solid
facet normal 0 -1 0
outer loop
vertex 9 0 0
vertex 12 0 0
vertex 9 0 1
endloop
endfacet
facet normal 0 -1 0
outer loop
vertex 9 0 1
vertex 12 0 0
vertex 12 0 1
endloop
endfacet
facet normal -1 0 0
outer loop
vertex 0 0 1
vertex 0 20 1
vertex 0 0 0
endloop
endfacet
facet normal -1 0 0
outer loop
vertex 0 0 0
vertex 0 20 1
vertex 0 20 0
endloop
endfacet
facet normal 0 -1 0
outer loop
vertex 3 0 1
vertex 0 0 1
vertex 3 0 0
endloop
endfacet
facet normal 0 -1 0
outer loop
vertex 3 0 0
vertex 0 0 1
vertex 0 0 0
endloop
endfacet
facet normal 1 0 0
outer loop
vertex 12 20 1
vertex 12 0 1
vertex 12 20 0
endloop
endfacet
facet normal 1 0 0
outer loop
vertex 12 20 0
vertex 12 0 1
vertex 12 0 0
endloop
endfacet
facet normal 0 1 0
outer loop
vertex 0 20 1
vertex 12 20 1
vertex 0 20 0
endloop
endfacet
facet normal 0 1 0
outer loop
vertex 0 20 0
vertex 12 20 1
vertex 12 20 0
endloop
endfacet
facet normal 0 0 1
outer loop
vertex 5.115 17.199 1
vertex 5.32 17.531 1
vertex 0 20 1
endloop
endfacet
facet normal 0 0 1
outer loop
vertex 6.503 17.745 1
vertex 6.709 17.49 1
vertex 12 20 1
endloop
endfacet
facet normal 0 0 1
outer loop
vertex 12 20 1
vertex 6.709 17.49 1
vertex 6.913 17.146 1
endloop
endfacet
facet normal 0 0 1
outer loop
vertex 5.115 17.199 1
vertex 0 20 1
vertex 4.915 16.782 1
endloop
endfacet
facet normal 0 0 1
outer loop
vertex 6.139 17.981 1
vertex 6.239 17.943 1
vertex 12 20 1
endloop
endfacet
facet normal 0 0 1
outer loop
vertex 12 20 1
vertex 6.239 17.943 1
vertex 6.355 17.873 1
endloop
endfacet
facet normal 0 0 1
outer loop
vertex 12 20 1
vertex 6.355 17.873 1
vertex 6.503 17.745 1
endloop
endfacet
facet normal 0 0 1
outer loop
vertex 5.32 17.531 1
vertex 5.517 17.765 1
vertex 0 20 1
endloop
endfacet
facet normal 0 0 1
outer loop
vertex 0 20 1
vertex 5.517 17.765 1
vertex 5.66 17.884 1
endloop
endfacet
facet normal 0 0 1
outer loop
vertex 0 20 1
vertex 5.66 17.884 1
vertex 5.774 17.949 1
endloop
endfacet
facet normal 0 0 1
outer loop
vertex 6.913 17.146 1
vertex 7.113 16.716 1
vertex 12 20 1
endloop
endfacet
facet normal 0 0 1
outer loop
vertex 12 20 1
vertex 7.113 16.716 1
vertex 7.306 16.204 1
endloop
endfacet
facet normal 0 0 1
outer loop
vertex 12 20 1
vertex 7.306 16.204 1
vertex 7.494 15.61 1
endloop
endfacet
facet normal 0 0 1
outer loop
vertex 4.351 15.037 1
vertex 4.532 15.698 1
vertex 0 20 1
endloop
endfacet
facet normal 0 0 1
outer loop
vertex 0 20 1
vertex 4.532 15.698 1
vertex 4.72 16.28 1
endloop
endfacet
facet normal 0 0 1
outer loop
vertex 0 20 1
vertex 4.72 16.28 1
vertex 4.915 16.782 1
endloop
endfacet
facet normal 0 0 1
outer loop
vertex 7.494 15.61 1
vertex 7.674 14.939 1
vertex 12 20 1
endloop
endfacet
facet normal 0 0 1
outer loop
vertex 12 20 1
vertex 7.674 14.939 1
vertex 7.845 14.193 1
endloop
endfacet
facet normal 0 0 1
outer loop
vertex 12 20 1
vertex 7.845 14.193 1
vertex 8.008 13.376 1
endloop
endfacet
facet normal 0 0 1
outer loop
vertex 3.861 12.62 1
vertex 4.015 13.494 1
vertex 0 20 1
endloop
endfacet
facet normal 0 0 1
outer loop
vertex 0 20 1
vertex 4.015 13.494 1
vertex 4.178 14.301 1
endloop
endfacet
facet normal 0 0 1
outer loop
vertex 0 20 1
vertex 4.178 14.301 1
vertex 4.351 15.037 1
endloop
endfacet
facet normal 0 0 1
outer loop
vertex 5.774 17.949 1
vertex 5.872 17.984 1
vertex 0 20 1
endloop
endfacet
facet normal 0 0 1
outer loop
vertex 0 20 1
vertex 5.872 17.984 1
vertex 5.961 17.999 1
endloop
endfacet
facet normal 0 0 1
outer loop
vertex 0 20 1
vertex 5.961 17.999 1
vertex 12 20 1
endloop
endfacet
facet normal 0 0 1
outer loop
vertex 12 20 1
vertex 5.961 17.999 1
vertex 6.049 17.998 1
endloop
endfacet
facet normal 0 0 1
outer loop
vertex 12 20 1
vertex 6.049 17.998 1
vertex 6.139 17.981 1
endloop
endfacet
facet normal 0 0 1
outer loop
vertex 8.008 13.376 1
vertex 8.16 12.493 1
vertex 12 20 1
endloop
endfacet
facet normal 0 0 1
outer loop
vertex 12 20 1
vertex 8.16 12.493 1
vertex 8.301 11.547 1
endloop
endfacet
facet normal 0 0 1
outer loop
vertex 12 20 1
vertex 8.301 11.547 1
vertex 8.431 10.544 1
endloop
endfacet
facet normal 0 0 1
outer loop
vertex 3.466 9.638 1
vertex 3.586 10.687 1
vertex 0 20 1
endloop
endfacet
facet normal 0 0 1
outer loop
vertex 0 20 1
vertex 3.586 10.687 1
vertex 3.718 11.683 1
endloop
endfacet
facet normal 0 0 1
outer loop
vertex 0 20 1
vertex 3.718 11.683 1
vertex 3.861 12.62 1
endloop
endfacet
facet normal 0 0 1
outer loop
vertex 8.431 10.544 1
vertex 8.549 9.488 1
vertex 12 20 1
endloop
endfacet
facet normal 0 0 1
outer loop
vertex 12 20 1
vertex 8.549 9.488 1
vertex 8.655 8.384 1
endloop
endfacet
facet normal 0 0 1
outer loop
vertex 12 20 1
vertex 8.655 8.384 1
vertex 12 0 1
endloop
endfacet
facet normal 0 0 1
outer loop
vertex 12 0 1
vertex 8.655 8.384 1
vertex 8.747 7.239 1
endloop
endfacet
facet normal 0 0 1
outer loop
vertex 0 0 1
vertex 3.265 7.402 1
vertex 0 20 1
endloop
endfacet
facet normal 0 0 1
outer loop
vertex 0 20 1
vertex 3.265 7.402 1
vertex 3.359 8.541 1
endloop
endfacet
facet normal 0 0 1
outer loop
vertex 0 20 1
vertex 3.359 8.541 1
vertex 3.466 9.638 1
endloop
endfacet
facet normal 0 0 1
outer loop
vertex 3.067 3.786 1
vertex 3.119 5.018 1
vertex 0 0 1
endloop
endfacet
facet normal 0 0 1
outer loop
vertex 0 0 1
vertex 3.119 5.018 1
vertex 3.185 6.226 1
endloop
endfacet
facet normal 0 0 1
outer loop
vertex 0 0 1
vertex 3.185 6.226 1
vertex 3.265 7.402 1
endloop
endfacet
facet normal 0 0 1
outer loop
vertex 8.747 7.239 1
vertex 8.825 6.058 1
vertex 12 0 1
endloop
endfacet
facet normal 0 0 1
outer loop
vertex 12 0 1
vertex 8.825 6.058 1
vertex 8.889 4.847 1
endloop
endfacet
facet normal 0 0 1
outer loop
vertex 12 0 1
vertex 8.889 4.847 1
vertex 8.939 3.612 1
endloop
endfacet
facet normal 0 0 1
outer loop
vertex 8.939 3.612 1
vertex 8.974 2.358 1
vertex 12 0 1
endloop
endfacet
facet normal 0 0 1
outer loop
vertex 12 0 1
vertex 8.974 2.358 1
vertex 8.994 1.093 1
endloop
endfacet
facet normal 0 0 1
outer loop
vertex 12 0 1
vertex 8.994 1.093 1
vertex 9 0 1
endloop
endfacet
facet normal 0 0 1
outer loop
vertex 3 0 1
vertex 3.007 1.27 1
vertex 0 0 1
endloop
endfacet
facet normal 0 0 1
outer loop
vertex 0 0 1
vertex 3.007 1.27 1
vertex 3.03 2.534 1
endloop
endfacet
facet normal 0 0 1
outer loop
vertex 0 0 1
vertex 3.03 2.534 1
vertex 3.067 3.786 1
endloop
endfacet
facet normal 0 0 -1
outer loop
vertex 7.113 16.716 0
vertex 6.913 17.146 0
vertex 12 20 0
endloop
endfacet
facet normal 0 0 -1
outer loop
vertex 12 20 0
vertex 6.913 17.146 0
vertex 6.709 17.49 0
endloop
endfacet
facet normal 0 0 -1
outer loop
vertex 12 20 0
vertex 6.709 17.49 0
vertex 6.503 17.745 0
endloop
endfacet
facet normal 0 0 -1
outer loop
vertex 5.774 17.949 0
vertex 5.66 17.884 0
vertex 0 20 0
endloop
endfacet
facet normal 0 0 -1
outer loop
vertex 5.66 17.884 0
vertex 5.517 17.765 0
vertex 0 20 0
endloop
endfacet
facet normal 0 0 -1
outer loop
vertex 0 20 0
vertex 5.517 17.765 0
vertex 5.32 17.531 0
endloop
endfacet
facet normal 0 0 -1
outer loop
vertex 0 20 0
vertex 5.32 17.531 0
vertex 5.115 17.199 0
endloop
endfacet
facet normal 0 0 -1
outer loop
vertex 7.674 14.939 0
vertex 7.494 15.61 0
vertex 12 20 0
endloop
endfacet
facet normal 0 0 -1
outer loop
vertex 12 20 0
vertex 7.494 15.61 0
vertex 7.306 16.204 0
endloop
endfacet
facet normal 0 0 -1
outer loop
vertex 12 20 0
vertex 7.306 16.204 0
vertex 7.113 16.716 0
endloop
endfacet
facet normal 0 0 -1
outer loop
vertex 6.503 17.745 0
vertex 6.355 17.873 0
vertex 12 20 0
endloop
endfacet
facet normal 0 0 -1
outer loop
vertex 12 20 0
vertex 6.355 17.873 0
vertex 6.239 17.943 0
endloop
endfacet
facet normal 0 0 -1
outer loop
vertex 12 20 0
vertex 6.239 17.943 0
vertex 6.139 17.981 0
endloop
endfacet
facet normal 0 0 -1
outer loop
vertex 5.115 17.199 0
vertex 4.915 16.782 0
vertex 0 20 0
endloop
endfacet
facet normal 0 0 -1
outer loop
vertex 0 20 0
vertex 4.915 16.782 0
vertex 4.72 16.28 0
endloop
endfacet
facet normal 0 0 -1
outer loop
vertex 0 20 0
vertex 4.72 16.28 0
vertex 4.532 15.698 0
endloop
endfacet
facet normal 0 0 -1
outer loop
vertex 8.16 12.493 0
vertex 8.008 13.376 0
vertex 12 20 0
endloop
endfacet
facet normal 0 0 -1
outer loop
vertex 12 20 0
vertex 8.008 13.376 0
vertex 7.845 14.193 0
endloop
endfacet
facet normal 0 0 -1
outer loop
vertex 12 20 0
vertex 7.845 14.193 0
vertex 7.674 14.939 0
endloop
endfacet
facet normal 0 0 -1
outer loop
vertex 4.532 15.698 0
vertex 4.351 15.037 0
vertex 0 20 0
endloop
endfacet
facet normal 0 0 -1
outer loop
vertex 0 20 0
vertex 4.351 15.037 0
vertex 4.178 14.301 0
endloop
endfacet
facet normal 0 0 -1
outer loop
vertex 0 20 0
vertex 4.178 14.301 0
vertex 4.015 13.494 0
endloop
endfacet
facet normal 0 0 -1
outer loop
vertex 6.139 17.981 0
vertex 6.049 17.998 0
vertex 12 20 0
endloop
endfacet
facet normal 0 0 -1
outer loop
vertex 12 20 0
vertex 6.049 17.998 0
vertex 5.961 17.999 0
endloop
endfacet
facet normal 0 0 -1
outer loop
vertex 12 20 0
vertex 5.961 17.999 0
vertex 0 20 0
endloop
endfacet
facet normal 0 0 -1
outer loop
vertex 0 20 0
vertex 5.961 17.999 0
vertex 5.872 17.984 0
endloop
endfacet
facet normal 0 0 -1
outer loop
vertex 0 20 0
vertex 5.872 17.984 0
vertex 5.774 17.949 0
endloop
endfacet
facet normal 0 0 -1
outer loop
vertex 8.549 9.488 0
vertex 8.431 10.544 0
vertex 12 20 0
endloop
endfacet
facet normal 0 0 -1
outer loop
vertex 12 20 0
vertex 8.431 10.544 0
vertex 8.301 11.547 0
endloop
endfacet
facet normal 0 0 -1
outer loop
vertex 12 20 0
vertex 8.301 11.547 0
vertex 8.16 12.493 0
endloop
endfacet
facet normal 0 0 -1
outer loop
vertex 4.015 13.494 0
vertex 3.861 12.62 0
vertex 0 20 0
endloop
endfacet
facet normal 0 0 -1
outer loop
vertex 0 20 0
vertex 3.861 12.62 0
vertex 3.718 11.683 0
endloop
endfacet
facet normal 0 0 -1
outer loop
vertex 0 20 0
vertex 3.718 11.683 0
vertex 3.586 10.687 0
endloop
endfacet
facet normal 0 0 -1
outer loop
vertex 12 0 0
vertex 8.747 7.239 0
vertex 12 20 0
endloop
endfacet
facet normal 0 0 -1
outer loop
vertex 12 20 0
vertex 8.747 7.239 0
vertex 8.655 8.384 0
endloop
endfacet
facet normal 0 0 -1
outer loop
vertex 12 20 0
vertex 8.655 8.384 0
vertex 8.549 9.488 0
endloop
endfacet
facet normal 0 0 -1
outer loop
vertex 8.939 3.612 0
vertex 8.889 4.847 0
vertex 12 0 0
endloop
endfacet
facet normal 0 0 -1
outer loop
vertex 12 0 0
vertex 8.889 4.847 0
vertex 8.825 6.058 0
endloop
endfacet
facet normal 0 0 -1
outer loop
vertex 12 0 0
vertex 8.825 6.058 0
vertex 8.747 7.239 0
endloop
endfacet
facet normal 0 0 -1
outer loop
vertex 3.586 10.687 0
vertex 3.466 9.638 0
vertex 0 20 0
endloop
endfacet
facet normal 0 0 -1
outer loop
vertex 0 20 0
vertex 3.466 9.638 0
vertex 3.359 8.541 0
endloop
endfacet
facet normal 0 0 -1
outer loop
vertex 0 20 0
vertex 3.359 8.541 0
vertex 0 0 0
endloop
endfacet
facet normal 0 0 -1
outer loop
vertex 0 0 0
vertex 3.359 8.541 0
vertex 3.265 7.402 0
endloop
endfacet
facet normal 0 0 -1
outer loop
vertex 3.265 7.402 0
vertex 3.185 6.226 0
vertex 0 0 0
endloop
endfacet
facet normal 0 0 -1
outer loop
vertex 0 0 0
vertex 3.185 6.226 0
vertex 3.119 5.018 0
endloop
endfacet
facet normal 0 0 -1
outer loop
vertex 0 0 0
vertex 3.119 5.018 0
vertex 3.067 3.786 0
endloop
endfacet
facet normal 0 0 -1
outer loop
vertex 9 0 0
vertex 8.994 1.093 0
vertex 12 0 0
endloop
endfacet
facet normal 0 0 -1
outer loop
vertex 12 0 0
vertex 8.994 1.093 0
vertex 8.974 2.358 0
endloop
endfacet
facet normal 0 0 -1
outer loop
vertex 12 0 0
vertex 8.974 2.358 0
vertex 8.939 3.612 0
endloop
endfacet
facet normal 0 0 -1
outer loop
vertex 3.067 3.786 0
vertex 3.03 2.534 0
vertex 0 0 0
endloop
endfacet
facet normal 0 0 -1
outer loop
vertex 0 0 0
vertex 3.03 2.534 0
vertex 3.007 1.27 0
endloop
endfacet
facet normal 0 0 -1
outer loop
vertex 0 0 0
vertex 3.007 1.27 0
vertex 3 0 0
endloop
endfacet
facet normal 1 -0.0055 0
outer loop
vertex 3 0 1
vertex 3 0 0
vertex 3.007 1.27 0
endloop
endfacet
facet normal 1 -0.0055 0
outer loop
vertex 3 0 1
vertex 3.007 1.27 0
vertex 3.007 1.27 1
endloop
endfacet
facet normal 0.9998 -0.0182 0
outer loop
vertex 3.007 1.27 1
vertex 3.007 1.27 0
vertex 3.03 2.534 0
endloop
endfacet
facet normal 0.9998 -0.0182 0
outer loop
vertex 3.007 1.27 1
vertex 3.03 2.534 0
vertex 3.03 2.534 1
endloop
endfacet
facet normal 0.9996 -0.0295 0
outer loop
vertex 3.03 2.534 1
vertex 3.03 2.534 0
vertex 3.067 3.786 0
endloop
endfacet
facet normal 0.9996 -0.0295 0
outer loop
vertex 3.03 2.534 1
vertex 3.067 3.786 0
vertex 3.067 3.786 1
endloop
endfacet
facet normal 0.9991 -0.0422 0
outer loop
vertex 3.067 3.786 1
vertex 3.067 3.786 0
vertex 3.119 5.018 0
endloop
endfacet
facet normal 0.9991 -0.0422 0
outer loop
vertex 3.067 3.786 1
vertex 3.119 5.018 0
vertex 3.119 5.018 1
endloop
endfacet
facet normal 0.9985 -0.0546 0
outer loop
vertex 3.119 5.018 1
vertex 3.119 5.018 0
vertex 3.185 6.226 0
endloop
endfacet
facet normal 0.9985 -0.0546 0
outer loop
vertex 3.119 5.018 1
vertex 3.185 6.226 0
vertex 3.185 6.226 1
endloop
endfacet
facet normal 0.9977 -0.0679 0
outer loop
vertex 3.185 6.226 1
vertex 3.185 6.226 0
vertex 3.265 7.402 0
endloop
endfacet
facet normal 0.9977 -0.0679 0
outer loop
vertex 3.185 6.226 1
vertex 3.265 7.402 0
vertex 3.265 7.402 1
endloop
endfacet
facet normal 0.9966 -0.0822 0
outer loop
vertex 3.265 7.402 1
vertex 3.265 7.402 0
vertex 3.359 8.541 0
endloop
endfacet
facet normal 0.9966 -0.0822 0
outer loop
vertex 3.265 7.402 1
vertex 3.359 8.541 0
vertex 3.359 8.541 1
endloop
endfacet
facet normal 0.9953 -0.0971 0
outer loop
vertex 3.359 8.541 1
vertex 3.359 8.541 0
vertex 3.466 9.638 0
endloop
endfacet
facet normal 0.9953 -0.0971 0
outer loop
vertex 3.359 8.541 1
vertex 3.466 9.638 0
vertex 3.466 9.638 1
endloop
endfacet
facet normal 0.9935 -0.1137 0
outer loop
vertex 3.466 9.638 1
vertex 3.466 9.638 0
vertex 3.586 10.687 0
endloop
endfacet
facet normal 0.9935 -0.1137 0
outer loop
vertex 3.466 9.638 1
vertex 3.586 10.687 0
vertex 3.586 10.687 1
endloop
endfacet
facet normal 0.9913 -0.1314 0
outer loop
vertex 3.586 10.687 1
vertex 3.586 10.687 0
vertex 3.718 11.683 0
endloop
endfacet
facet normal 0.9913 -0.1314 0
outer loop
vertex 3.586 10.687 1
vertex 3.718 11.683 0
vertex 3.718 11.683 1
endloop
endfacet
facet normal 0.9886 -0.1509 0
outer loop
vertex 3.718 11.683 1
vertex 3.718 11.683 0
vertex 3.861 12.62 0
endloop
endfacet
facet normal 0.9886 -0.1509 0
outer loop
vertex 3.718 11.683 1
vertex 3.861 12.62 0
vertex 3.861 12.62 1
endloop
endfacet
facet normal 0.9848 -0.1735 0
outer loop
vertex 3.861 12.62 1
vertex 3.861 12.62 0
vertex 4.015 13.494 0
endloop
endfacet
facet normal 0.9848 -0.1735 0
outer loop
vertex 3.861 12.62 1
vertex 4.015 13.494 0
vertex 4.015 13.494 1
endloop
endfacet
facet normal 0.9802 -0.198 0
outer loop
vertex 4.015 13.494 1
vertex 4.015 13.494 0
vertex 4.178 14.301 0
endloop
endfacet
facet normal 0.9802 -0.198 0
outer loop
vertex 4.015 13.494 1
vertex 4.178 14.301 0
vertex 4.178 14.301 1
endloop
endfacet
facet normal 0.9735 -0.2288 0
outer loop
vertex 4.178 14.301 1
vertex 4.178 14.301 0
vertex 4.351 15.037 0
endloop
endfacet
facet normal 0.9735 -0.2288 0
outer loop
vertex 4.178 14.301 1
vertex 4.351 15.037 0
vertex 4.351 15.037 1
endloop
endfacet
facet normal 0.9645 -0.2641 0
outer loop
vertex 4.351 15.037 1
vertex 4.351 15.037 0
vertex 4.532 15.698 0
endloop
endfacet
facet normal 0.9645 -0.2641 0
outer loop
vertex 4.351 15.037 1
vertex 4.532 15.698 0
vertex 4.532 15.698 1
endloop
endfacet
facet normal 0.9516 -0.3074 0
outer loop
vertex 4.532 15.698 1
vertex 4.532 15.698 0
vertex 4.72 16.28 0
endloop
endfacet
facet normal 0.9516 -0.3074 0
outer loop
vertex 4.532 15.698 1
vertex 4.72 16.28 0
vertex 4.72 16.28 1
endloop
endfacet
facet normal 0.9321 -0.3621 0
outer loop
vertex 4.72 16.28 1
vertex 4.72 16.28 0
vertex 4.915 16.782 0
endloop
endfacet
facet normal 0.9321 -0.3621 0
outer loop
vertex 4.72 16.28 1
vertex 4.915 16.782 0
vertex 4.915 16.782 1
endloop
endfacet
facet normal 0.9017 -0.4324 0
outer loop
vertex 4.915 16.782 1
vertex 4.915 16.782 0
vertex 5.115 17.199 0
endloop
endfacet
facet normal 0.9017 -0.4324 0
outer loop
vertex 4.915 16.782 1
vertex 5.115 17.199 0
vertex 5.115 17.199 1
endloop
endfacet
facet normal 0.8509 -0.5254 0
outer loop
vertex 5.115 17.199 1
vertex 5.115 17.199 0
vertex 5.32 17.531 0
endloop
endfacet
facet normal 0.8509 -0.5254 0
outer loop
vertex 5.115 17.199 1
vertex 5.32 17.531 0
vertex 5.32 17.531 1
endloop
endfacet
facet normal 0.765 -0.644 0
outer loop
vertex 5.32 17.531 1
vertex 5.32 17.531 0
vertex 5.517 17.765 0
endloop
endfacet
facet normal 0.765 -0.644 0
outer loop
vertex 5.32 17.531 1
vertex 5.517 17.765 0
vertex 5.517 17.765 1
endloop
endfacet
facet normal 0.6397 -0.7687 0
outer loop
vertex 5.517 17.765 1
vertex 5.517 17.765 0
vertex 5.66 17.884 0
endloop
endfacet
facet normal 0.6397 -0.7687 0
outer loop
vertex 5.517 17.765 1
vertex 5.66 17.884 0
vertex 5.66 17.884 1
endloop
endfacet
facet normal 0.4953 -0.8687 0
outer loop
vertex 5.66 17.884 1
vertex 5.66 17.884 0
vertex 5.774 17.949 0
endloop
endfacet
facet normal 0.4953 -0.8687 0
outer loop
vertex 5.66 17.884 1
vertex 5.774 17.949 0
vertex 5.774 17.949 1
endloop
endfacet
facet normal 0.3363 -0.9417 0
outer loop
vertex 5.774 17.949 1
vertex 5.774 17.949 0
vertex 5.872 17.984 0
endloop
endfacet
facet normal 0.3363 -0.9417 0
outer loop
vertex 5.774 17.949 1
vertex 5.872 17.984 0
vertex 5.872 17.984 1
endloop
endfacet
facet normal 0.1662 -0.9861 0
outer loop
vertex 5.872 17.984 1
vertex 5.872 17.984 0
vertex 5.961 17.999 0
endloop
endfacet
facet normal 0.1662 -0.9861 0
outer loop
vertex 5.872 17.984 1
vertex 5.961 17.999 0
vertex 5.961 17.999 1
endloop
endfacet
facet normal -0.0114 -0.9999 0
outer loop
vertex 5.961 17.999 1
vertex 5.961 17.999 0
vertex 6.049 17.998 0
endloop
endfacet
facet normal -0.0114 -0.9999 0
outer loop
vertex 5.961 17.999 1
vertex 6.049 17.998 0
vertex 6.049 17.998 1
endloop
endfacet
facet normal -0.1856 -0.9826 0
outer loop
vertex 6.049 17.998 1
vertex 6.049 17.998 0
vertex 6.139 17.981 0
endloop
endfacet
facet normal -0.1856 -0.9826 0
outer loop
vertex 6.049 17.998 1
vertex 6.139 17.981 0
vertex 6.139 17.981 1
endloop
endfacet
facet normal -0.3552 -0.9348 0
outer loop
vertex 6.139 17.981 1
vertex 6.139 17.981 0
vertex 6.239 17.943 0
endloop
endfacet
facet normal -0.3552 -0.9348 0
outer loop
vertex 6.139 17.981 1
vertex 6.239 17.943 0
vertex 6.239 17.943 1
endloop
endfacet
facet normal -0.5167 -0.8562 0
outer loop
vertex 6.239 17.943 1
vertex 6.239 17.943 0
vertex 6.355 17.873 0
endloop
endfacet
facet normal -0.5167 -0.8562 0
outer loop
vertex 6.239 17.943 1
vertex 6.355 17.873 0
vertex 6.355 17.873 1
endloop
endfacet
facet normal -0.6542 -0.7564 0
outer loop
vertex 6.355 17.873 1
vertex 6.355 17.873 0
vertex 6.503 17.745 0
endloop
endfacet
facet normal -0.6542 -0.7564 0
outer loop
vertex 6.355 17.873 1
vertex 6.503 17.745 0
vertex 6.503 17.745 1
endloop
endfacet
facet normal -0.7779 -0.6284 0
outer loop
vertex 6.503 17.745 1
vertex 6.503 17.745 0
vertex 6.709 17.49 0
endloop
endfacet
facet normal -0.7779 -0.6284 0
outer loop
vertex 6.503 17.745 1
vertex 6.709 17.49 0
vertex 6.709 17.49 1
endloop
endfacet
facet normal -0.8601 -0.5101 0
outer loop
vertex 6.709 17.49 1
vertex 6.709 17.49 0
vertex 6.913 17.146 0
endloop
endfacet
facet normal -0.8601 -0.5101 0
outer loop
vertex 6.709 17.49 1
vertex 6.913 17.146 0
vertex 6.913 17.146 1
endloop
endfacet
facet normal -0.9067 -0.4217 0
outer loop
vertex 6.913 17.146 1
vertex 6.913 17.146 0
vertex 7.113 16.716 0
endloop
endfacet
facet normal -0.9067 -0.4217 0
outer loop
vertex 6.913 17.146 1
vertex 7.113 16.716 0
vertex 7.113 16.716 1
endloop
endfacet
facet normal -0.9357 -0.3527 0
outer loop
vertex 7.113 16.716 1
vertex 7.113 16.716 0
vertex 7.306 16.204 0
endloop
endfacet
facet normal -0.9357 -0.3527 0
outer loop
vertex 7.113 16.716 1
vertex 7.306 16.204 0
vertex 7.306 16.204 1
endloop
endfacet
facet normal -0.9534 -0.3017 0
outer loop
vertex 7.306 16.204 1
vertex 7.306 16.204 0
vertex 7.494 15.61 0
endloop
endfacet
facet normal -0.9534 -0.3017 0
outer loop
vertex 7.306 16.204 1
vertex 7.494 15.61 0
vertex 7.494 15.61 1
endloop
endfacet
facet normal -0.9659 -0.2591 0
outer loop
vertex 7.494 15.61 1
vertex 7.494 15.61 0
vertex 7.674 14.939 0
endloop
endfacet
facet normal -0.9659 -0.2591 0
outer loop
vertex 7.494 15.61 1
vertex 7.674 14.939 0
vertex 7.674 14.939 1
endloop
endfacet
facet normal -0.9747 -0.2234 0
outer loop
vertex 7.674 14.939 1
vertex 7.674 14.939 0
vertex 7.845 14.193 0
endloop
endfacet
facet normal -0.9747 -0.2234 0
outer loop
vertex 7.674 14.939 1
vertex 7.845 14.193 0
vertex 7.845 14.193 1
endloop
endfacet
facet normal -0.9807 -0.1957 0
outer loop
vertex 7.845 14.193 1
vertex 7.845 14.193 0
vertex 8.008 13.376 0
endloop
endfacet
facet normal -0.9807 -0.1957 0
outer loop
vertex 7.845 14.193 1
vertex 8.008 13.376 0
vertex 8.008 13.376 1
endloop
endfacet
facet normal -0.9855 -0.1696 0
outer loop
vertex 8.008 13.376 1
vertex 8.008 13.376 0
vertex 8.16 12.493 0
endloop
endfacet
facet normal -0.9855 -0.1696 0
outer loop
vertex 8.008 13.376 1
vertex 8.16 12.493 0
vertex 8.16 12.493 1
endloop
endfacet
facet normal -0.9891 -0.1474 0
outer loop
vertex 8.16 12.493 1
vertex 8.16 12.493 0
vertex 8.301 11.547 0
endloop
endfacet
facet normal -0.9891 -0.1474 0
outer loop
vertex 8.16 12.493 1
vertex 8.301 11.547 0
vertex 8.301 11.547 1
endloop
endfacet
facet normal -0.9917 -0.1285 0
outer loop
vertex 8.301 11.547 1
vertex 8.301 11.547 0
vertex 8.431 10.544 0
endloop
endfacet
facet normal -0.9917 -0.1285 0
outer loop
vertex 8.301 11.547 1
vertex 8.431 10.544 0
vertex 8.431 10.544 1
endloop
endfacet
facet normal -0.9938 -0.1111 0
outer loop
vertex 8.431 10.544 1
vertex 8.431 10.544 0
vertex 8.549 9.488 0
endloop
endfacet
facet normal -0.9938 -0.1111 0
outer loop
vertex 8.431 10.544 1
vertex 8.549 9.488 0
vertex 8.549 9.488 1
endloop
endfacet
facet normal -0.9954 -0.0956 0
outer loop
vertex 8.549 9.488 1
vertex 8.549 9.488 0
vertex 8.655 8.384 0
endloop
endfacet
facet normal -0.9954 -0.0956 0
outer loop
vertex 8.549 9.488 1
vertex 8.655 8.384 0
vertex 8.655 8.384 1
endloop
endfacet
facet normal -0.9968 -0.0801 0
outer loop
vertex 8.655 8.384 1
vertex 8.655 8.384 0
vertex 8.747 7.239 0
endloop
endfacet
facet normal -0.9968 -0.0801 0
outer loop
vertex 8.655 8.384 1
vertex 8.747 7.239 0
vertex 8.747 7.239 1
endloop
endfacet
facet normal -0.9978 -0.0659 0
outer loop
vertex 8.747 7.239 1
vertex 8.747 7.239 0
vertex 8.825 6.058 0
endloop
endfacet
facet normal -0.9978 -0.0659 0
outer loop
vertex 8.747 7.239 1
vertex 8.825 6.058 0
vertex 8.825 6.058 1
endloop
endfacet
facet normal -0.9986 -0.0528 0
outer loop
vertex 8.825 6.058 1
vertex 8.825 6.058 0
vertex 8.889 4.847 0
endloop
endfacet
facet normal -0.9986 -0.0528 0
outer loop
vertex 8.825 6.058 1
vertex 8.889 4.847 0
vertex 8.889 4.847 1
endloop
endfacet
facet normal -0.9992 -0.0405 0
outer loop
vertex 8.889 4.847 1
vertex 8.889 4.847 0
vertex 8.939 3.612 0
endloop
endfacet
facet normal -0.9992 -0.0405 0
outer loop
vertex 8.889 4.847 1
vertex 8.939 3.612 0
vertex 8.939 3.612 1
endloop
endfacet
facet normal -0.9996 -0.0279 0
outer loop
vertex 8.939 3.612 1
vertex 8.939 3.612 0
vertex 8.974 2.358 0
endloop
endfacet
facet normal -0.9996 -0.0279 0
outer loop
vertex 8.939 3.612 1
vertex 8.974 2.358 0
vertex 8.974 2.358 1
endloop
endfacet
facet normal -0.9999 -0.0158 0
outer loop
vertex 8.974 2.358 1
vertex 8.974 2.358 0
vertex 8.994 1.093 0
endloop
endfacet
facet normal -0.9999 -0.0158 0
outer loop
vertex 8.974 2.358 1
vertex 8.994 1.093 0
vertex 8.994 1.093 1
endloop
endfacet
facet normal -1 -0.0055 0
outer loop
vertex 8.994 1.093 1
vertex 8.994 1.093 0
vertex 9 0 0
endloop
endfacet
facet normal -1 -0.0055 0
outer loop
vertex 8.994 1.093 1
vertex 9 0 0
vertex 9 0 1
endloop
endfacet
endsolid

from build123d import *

# Parameters (mm, degrees)
SKIZZE1_W                       = 12
SKIZZE1_H                       = 20
AUFSATZ_LINEAR_AUSTRAGEN1_DEPTH = 1
SKIZZE2_RX                      = 18
SKIZZE2_RY                      = 3
SCHNITT_LINEAR_AUSTRAGEN1_DEPTH = 24.34523506


with BuildPart() as part:
    # Skizze1 → Aufsatz-Linear austragen1 (new body)
    with BuildSketch(Plane.XY):
        with Locations((6, 10)):
            Rectangle(SKIZZE1_W, SKIZZE1_H)
    extrude(amount=AUFSATZ_LINEAR_AUSTRAGEN1_DEPTH)

    # Skizze2 → Schnitt-Linear austragen1 (cut, through all)
    with BuildSketch(Plane(origin=(0, 0, 0), x_dir=(-1, 0, 0), z_dir=(0, 0, -1))):
        with Locations(Location((-6, 0), (0, 0, 90))):
            Ellipse(SKIZZE2_RX, SKIZZE2_RY)
    extrude(amount=-SCHNITT_LINEAR_AUSTRAGEN1_DEPTH, mode=Mode.SUBTRACT)


solid = part.part
